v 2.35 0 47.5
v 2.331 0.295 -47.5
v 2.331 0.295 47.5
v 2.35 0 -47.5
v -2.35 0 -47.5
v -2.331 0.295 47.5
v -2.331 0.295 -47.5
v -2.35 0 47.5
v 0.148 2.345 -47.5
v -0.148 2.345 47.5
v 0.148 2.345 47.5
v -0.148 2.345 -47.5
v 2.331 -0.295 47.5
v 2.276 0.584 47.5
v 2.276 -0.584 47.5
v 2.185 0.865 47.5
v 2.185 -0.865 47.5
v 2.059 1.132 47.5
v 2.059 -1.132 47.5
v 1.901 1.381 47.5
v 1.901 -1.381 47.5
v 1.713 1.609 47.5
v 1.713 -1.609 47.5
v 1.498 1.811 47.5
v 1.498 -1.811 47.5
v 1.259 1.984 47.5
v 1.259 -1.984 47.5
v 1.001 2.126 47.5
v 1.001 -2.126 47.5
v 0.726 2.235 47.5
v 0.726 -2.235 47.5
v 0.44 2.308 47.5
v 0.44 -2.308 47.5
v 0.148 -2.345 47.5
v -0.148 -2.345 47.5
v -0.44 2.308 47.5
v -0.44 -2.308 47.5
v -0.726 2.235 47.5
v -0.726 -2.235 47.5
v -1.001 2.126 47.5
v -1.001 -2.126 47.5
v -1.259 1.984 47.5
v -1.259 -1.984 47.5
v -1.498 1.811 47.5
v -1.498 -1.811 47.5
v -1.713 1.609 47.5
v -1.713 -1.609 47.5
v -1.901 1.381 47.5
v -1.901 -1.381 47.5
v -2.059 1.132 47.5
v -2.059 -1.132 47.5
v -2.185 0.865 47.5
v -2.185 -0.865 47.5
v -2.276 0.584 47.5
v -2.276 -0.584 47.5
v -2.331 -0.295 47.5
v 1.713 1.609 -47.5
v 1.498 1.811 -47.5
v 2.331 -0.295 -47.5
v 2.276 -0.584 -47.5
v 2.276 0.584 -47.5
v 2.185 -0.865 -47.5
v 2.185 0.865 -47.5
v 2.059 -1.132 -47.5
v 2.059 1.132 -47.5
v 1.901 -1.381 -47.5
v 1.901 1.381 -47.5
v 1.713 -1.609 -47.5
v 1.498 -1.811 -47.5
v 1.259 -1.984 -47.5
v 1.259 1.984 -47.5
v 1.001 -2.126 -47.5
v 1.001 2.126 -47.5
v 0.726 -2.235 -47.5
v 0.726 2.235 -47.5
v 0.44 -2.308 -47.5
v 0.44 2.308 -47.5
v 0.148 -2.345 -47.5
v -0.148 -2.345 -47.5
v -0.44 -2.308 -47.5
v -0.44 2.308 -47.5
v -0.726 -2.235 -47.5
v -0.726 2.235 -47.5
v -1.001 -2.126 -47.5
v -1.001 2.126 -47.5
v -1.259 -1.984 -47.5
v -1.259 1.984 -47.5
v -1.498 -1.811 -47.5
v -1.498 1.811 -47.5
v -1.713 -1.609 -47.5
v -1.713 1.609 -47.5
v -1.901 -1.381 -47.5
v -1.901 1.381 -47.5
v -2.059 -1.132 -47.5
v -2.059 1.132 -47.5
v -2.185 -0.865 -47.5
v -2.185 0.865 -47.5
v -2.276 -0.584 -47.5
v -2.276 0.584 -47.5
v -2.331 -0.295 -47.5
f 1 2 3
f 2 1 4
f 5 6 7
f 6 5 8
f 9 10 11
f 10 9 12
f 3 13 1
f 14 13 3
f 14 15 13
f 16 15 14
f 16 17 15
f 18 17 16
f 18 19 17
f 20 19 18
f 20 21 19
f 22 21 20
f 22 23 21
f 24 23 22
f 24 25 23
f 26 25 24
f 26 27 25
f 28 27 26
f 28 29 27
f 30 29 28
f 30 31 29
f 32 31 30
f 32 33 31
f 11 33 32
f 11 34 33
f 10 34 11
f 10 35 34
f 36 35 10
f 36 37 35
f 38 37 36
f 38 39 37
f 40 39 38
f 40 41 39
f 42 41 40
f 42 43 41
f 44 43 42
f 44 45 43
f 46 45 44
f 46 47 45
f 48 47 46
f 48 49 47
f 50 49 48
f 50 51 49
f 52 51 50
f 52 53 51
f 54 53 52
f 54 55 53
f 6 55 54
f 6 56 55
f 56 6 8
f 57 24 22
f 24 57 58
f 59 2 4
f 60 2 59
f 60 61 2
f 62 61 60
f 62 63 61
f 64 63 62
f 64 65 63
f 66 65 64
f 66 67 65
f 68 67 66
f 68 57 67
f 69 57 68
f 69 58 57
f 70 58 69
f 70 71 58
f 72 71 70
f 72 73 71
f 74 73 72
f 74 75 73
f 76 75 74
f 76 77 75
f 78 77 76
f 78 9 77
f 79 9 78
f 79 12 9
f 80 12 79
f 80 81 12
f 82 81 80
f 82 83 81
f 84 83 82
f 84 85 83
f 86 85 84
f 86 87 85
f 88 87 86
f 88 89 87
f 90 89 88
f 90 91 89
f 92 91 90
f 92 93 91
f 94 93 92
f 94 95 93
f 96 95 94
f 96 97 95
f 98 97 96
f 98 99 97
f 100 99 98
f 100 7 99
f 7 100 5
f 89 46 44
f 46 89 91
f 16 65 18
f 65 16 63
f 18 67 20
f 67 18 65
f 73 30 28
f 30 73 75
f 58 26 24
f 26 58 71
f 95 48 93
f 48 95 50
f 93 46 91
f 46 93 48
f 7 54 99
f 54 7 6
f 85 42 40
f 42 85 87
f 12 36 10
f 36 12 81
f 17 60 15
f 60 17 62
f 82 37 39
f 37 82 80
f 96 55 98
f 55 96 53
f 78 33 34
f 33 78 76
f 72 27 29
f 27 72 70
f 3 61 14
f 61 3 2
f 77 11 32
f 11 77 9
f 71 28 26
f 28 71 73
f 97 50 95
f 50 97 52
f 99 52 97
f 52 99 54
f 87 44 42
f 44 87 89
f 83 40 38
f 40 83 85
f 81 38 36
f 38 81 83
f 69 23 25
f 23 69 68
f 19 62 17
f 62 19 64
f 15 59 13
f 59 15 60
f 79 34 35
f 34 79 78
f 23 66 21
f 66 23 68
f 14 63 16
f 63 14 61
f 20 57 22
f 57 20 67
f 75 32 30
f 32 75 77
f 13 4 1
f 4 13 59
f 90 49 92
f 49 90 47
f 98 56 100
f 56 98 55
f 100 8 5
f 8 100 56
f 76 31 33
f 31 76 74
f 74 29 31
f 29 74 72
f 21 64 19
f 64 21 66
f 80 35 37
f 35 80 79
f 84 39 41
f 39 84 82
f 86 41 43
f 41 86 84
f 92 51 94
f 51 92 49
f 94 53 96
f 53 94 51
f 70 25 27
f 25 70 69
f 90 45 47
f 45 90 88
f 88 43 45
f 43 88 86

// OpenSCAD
$fn = 50;


difference() {
	union() {
		translate(v = [0, 0, -47.5000000000]) {
			cylinder(h = 95, r = 2.3500000000);
		}
	}
	union() {
		translate(v = [0, 0, -100.0000000000]) {
			cylinder(h = 200, r = 0);
		}
	}
}
